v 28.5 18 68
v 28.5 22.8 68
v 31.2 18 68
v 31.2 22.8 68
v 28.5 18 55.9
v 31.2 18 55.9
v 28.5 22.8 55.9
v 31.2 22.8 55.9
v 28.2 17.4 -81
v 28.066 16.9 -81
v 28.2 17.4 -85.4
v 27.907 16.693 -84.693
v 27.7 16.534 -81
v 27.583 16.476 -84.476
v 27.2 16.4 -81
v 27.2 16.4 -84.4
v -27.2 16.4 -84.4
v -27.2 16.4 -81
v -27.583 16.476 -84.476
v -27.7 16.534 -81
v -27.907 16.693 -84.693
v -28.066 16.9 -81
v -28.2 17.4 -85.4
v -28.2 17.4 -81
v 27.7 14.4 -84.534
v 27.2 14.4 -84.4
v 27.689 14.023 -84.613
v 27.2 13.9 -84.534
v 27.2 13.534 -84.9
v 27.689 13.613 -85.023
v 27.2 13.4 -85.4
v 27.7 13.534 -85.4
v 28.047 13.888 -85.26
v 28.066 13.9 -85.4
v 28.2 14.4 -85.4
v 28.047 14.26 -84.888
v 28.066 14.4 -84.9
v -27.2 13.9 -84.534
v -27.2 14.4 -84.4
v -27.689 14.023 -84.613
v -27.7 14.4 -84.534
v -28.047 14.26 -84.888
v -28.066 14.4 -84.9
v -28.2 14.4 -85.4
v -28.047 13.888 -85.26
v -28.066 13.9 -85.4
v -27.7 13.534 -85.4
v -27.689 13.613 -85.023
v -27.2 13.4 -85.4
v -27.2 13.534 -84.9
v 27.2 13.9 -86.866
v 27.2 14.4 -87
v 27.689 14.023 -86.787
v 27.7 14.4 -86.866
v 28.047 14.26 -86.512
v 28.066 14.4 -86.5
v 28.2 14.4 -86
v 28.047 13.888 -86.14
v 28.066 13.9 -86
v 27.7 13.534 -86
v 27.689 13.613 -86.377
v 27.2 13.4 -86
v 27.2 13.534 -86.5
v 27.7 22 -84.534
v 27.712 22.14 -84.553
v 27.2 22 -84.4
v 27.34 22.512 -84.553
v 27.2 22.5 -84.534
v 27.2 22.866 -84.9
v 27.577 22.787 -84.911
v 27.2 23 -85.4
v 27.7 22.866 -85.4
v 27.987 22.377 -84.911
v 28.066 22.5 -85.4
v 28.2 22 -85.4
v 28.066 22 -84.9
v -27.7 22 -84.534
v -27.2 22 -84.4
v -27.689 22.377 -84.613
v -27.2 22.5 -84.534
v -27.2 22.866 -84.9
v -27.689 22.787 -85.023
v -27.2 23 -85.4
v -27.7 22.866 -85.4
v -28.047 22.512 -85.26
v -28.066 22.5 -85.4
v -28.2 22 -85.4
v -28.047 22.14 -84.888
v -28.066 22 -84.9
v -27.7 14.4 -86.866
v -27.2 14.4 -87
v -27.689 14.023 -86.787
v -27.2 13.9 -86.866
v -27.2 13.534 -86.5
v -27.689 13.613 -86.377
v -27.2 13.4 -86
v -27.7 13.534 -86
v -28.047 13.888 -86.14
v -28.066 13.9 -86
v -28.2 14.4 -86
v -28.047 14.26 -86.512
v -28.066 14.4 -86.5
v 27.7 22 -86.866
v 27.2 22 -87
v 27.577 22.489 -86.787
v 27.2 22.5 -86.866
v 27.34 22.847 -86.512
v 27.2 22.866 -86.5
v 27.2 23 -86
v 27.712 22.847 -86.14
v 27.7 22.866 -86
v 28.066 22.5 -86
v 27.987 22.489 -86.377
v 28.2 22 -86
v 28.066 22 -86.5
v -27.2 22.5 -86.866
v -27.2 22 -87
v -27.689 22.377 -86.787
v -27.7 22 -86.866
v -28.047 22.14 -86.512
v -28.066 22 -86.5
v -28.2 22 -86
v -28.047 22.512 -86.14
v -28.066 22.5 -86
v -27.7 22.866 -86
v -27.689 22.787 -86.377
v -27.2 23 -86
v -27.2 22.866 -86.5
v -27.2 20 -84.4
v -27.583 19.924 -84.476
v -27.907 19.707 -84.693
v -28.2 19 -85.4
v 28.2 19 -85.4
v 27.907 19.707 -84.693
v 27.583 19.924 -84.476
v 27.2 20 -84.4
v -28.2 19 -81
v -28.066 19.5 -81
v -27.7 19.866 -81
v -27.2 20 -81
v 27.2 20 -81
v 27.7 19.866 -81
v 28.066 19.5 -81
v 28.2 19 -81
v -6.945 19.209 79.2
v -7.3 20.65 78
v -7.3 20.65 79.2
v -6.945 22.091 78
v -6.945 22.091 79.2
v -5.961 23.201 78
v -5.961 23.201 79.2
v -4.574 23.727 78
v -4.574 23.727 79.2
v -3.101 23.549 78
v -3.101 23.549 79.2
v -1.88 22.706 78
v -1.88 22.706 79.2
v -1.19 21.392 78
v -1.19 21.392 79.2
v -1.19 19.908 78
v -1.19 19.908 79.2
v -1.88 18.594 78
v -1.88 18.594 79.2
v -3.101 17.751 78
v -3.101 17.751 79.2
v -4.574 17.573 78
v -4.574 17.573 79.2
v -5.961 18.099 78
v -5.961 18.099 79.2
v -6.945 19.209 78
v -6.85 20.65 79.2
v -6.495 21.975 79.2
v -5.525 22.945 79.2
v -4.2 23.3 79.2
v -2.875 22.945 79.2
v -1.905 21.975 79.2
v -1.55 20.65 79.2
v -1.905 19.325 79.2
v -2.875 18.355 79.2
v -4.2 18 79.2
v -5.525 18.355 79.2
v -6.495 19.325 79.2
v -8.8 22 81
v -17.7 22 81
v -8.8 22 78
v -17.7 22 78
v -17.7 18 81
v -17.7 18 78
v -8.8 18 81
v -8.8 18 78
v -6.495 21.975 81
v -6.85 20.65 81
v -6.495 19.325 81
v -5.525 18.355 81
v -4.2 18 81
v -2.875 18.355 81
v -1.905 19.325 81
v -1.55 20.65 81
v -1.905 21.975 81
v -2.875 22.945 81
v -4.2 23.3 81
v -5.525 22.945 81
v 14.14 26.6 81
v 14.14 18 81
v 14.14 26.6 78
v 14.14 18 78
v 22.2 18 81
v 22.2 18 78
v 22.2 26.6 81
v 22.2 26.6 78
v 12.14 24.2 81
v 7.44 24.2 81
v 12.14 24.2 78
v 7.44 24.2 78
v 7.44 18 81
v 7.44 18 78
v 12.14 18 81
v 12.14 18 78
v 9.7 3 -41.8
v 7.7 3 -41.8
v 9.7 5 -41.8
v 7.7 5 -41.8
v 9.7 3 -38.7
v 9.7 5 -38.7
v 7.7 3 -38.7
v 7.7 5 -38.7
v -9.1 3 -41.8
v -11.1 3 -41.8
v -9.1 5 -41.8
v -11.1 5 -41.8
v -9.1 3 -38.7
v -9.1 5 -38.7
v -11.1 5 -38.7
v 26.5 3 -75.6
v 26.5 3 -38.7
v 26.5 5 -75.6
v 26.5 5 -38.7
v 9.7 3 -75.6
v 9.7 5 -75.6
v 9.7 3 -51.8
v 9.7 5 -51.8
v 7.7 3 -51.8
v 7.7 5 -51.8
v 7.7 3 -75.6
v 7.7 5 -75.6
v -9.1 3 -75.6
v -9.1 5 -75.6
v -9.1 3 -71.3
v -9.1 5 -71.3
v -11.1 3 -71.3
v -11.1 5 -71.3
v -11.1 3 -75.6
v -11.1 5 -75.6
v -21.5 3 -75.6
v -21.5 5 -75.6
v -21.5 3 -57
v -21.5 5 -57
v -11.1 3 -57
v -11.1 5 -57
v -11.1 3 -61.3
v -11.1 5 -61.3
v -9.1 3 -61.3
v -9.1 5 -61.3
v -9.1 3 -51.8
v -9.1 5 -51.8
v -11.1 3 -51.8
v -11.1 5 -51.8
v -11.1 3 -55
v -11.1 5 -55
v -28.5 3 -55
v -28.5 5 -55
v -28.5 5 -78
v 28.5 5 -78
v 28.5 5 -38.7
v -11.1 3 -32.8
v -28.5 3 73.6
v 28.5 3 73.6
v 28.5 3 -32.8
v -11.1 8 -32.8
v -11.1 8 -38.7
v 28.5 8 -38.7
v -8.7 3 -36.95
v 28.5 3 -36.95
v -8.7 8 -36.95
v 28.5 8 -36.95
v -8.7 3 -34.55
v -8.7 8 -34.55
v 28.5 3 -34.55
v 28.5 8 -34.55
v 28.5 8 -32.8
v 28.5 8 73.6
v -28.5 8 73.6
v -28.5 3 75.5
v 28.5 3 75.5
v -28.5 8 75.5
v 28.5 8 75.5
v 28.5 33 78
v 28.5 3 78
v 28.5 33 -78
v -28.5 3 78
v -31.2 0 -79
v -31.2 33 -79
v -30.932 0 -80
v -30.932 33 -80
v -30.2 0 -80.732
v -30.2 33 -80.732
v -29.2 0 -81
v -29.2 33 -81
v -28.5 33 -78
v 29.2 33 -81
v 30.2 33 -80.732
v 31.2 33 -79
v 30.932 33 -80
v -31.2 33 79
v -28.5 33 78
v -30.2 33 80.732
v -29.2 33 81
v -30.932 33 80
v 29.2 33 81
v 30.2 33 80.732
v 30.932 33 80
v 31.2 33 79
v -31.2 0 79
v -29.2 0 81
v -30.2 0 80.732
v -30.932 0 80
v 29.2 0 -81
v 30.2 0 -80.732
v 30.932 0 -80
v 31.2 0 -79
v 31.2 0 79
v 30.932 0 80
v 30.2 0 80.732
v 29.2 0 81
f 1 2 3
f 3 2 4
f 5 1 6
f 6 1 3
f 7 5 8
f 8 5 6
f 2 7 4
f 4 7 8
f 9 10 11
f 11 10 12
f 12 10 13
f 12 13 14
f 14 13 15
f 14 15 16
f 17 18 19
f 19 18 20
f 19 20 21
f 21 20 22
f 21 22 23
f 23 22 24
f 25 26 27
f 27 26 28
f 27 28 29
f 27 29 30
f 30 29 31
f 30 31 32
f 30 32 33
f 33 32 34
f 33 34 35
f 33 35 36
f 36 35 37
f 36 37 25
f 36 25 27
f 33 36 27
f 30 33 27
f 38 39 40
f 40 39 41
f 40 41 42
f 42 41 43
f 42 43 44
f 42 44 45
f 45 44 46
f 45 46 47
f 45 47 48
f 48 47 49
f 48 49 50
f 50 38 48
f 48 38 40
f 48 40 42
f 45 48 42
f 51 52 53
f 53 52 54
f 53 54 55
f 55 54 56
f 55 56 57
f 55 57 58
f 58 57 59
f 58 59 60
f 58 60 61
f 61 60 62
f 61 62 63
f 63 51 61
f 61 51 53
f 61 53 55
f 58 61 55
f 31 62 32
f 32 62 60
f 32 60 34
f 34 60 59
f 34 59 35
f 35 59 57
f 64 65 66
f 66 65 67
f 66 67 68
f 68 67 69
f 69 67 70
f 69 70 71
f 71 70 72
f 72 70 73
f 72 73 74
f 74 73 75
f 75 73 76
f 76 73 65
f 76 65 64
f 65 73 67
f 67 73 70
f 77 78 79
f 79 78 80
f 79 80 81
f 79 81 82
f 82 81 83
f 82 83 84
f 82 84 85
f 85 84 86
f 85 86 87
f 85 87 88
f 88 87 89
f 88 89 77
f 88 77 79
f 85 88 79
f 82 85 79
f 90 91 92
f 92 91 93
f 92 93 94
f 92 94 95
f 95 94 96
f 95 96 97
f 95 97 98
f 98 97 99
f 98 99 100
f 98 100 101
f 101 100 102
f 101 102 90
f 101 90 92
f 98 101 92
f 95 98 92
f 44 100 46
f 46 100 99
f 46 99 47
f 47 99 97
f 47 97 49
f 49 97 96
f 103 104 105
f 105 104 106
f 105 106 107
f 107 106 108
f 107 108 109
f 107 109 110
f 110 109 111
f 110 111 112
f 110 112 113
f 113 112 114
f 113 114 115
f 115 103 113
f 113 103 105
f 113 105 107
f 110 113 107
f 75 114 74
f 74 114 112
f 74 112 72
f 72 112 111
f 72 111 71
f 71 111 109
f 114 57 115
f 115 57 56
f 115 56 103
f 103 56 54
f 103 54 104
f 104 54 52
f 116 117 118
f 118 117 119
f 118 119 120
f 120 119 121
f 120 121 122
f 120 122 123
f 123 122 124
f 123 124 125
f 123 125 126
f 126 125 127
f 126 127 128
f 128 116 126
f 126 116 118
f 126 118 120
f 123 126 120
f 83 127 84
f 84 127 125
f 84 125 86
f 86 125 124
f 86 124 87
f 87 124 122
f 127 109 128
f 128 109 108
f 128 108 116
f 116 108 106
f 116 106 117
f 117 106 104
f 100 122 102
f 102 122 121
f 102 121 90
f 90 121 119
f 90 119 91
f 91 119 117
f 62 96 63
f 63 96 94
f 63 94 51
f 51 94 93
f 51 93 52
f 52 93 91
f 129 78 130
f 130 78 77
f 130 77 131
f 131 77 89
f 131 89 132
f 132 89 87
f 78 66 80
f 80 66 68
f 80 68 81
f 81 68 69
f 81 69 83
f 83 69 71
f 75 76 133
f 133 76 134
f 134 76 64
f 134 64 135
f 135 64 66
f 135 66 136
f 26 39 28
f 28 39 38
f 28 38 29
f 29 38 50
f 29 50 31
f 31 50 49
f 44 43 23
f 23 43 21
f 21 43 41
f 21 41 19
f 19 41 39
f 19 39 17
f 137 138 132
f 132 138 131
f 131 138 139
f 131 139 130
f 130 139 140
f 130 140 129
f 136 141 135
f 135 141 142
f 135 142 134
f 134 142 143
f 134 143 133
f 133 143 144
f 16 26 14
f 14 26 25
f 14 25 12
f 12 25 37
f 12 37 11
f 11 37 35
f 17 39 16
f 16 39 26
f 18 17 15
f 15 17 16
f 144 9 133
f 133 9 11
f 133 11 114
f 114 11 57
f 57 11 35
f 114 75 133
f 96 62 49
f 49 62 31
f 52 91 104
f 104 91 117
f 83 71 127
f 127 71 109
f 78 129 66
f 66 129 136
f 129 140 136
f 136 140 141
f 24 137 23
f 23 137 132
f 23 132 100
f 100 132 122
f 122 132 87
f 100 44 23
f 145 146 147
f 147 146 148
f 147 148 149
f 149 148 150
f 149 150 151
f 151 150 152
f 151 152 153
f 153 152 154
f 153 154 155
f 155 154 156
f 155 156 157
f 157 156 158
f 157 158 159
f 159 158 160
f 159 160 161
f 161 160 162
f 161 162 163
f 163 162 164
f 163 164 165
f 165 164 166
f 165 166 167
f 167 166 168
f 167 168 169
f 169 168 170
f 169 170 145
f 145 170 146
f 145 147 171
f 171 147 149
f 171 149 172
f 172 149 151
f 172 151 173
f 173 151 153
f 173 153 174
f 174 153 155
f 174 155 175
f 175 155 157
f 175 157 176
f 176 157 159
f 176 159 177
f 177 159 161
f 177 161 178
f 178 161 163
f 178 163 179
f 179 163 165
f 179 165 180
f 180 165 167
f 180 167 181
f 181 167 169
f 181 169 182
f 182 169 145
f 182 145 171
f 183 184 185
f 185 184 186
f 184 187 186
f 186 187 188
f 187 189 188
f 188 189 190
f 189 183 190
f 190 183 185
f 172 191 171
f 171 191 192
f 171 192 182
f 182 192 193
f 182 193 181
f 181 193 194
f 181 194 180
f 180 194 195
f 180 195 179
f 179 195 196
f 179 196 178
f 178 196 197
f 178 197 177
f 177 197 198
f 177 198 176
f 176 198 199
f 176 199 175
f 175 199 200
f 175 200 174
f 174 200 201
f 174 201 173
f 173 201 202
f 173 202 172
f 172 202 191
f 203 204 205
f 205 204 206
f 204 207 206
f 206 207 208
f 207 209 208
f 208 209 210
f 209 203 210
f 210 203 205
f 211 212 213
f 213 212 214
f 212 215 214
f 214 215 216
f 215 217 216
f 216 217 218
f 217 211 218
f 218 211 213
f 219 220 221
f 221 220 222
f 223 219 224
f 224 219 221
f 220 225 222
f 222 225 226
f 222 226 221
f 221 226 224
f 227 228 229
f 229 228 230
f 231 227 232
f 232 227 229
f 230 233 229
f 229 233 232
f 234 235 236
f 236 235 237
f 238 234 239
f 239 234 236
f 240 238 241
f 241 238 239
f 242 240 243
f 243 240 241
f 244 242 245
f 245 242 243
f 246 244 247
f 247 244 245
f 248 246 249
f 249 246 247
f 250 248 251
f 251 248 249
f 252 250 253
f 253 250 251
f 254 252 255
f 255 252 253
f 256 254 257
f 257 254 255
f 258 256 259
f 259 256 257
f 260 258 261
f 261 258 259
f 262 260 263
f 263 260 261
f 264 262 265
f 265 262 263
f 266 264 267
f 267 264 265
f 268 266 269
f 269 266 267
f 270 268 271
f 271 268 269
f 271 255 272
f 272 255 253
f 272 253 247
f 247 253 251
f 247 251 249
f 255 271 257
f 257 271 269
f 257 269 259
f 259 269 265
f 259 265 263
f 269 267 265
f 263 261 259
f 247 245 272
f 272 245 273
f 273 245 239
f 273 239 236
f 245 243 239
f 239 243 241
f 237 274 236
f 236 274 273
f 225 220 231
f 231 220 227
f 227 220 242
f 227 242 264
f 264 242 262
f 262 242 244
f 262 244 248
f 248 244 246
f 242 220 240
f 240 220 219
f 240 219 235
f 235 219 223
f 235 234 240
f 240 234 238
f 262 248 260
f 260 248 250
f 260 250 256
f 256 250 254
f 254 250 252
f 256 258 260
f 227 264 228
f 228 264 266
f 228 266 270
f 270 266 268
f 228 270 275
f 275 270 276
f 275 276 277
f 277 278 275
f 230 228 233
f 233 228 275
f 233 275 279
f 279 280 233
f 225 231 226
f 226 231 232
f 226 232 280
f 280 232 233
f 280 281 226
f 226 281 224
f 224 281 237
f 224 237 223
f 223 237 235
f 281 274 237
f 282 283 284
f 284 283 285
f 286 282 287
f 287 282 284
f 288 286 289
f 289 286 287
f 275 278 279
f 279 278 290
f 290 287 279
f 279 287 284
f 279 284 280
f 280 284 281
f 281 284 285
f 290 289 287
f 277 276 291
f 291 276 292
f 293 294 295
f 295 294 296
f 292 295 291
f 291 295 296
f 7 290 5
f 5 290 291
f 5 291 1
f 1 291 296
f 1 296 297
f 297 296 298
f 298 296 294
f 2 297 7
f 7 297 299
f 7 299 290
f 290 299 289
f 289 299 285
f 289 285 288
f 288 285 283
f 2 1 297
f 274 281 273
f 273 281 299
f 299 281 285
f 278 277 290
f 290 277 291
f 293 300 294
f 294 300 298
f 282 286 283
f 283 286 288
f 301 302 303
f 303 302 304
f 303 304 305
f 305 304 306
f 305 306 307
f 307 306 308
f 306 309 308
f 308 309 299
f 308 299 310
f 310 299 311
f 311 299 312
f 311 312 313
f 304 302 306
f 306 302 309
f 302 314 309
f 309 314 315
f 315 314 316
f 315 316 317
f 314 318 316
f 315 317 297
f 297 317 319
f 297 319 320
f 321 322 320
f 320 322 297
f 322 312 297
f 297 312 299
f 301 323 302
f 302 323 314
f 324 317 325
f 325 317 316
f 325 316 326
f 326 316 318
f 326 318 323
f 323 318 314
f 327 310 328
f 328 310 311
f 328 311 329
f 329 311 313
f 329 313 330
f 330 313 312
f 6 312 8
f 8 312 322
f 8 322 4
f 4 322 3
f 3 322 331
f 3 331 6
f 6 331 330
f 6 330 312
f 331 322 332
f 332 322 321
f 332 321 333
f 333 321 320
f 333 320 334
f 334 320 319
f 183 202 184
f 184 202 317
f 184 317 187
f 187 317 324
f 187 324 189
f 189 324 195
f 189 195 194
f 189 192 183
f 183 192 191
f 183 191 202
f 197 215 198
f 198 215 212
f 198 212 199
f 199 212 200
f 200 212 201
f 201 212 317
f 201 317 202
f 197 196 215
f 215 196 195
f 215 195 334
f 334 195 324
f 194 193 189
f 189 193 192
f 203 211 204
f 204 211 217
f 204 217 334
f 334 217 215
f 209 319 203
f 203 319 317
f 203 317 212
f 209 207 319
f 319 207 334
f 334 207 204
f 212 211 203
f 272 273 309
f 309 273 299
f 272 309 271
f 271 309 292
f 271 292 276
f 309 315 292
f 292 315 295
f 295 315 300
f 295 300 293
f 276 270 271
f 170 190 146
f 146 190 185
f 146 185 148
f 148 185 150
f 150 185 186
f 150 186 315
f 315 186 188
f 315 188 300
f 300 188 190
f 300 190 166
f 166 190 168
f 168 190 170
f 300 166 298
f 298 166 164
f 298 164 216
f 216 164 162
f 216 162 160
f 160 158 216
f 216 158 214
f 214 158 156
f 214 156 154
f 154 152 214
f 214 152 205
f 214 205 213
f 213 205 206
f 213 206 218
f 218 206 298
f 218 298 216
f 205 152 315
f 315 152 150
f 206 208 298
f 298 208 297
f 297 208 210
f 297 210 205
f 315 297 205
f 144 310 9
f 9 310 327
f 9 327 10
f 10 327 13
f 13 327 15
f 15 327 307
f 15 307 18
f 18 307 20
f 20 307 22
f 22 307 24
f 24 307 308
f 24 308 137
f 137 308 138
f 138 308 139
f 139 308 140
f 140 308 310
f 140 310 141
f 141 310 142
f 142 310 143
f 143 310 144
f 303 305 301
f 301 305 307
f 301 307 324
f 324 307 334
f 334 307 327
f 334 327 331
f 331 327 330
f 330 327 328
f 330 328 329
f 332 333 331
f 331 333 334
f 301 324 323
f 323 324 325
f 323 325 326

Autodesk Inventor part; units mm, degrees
ref_plane "YZ Plane" through (0, 0, 0) normal (1, 0, 0) x (0, 1, 0)
ref_plane "XZ Plane" through (0, 0, 0) normal (0, 1, 0) x (-1, 0, 0)
ref_plane "XY Plane" through (0, 0, 0) normal (0, 0, 1) x (1, 0, 0)
sketch "Sketch1" plane through (0, 0, 0) normal (0, 1, 0) x (-1, 0, 0)
  line L0 (-31.2, -81) -> (31.2, -81)
  line L1 (31.2, -81) -> (31.2, 81)
  line L2 (31.2, 81) -> (-31.2, 81)
  line L3 (-31.2, 81) -> (-31.2, -81)
  line L4 (-31.2, -81) -> (31.2, 81) construction
  line L5 (31.2, -81) -> (-31.2, 81) construction
  point P0 (0, 0)
  dimension "d0" = 62.4
  dimension "d1" = 162
extrude "Extrusion1" add sketch "Sketch1" along normal blind 3
sketch "Sketch2" plane through (0, 3, 0) normal (0, 1, 0) x (1, 0, 0)
  line L0 (-31.2, 81) -> (-31.2, -81) projected
  line L1 (-31.2, -81) -> (31.2, -81) projected
  line L2 (31.2, -81) -> (31.2, 81) projected
  line L3 (31.2, 81) -> (-31.2, 81) projected
  line L4 (31.2, 81) -> (-31.2, 81)
  line L5 (-31.2, 81) -> (-31.2, -81)
  line L6 (-31.2, -81) -> (31.2, -81)
  line L7 (31.2, -81) -> (31.2, 81)
  line L8 (28.5, 78) -> (-28.5, 78)
  line L9 (-28.5, 78) -> (-28.5, -78)
  line L10 (-28.5, -78) -> (28.5, -78)
  line L11 (28.5, -78) -> (28.5, 78)
  point P0 (0, 0)
  dimension "d175" = 2.7
  dimension "d176" = 2.7
  dimension "d177" = 3
  dimension "d178" = 3
extrude "Extrusion2" add sketch "Sketch2" along normal blind 30
fillet "Fillet1" radius 2 4 edges at (31.2, 16.5, 81) (31.2, 16.5, -81) (-31.2, 16.5, 81) (-31.2, 16.5, -81)
sketch "Sketch9" plane through (0, 3, 0) normal (0, 1, 0) x (1, 0, 0)
  line L0 (28.5, 78) -> (-28.5, 78) projected
  line L1 (-28.5, 78) -> (-28.5, -78) projected
  line L2 (-28.5, -78) -> (28.5, -78) projected
  line L3 (28.5, -78) -> (28.5, 78) projected
  line L4 (-28.5, -75.5) -> (28.5, -75.5)
  line L5 (28.5, -75.5) -> (28.5, -73.6)
  line L6 (28.5, -73.6) -> (-28.5, -73.6)
  line L7 (-28.5, -73.6) -> (-28.5, -75.5)
  line L8 (-28.5, 78) -> (-28.5, -78) projected
  line L9 (-28.5, 32.8) -> (28.5, 32.8)
  line L10 (28.5, 32.8) -> (28.5, 34.55)
  line L11 (28.5, 34.55) -> (-28.5, 34.55)
  line L12 (-28.5, 34.55) -> (-28.5, 32.8)
  line L13 (-28.5, 34.55) -> (-11.1, 34.55)
  line L14 (-11.1, 34.55) -> (-11.1, 32.8)
  line L15 (-11.1, 32.8) -> (-28.5, 32.8)
  line L16 (-28.5, 32.8) -> (-28.5, 34.55)
  line L17 (28.5, 38.7) -> (-11.1, 38.7)
  line L18 (-11.1, 38.7) -> (-11.1, 36.95)
  line L19 (-11.1, 36.95) -> (28.5, 36.95)
  line L20 (28.5, 36.95) -> (28.5, 38.7)
  line L21 (-11.1, 36.95) -> (-8.7, 36.95)
  line L22 (-8.7, 36.95) -> (-8.7, 34.55)
  line L23 (-8.7, 34.55) -> (-11.1, 34.55)
  line L24 (-11.1, 34.55) -> (-11.1, 36.95)
  point P0 (0, 0)
  point P1 (28.5, 14.2)
  point P2 (-28.5, 34.55)
  point P3 (-28.5, 32.8)
  point P4 (28.5, 32.8)
  point P5 (-28.5, -73.6)
  point P6 (28.5, -75.5)
  point P7 (-11.1, 34.55)
  point P8 (28.5, 36.95)
  dimension "d79" = 1.9
  dimension "d80" = 2.5
  dimension "d81" = 1.75
  dimension "d82" = 106.4
  dimension "d87" = 17.4
  dimension "d163" = 1.75
  dimension "d164" = 2.4
  dimension "d165" = 17.4
  dimension "d166" = 2.4
extrude "Extrusion9" add sketch "Sketch9" along normal blind 5 contours L3 L19 L18 L17 | L24 L19 L22 L11 | L11 L3 L9 L14 | L6 L3 L4 L1
sketch "Sketch10" plane through (0, 3, 0) normal (0, 1, 0) x (1, 0, 0)
  line L0 (-28.5, -73.6) -> (28.5, -73.6) projected
  line L1 (28.5, -73.6) -> (28.5, 32.8) projected
  line L2 (28.5, 32.8) -> (-11.1, 32.8) projected
  line L3 (-8.7, 34.55) -> (28.5, 34.55) projected
  line L4 (28.5, 34.55) -> (28.5, 36.95) projected
  line L5 (28.5, 78) -> (-28.5, 78) projected
  line L6 (-28.5, 78) -> (-28.5, -73.6) projected
  line L7 (-28.5, 36.7) -> (28.5, 36.7)
  line L8 (-28.5, 69.9) -> (-28.5, 36.7)
  line L9 (-28.5, 36.7) -> (28.5, 36.7)
  line L10 (28.5, 36.7) -> (28.5, 38.7)
  line L11 (28.5, 38.7) -> (-28.5, 38.7)
  line L12 (-28.5, 38.7) -> (-28.5, 36.7)
  line L13 (28.5, 34.55) -> (28.5, 78) projected
  line L14 (-28.5, 38.7) -> (28.5, 38.7)
  line L15 (28.5, 38.7) -> (28.5, 75.6)
  line L16 (28.5, 75.6) -> (-23, 75.6)
  line L17 (-23, 75.6) -> (28.5, 75.6)
  line L18 (28.5, 75.6) -> (28.5, 68)
  line L19 (-23, 73.1) -> (-23, 75.6)
  line L20 (28.5, 38.7) -> (26.5, 38.7)
  line L21 (26.5, 38.7) -> (26.5, 75.6)
  line L22 (26.5, 75.6) -> (28.5, 75.6)
  line L23 (28.5, 75.6) -> (28.5, 38.7)
  line L24 (26.5, 38.7) -> (9.7, 38.7)
  line L25 (9.7, 38.7) -> (9.7, 75.6)
  line L26 (9.7, 75.6) -> (26.5, 75.6)
  line L27 (26.5, 75.6) -> (26.5, 38.7)
  line L28 (9.7, 38.7) -> (7.7, 38.7)
  line L29 (7.7, 38.7) -> (7.7, 75.6)
  line L30 (7.7, 75.6) -> (9.7, 75.6)
  line L31 (9.7, 75.6) -> (9.7, 38.7)
  line L32 (7.7, 38.7) -> (-9.1, 38.7)
  line L33 (-9.1, 38.7) -> (-9.1, 75.6)
  line L34 (-9.1, 75.6) -> (7.7, 75.6)
  line L35 (7.7, 75.6) -> (7.7, 38.7)
  line L36 (-9.1, 38.7) -> (-11.1, 38.7)
  line L37 (-11.1, 38.7) -> (-11.1, 75.6)
  line L38 (-11.1, 75.6) -> (-9.1, 75.6)
  line L39 (-9.1, 75.6) -> (-9.1, 38.7)
  line L40 (-23, 75.6) -> (-21.5, 75.6)
  line L41 (-21.5, 75.6) -> (-21.5, 38.7)
  line L42 (-21.5, 38.7) -> (-23, 38.7)
  line L43 (-23, 38.7) -> (-23, 75.6)
  line L44 (-11.1, 39.2) -> (-11.1, 57)
  line L45 (-11.1, 57) -> (-21.5, 57)
  line L46 (-21.5, 57) -> (-21.5, 38.7)
  line L47 (-11.1, 38.7) -> (28.5, 38.7) projected
  line L48 (28.5, 38.7) -> (28.5, 78) projected
  line L49 (-11.1, 32.8) -> (-11.1, 38.7) projected
  line L50 (28.5, 36.95) -> (-8.7, 36.95) projected
  line L51 (-8.7, 36.95) -> (-8.7, 34.55) projected
  line L52 (28.5, -75.5) -> (-28.5, -75.5) projected
  line L53 (-28.5, -75.5) -> (-28.5, -78) projected
  line L54 (-28.5, -78) -> (28.5, -78) projected
  line L55 (28.5, -78) -> (28.5, -75.5) projected
  line L56 (-11.1, 39.2) -> (-11.1, 36.7)
  line L57 (-11.1, 55) -> (-23, 55)
  line L58 (-11.1, 39.2) -> (-11.1, 32.8)
  line L59 (-11.1, 32.8) -> (-11.1, 32.8)
  line L60 (-11.1, 32.8) -> (-11.1, 39.2)
  line L61 (-23, 55) -> (-28.5, 55)
  line L62 (7.7, 51.8) -> (9.7, 51.8)
  line L63 (9.7, 51.8) -> (9.7, 41.8)
  line L64 (9.7, 41.8) -> (7.7, 41.8)
  line L65 (7.7, 41.8) -> (7.7, 51.8)
  line L66 (-11.1, 41.8) -> (-9.1, 41.8)
  line L67 (-9.1, 41.8) -> (-9.1, 51.8)
  line L68 (-9.1, 51.8) -> (-11.1, 51.8)
  line L69 (-11.1, 51.8) -> (-11.1, 41.8)
  line L70 (-11.1, 71.3) -> (-9.1, 71.3)
  line L71 (-9.1, 71.3) -> (-9.1, 61.3)
  line L72 (-9.1, 61.3) -> (-11.1, 61.3)
  line L73 (-11.1, 61.3) -> (-11.1, 71.3)
  point P0 (0, 0)
  point P1 (28.5, 36.7)
  point P2 (7.7, 38.7)
  point P3 (-9.1, 38.7)
  point P4 (-11.1, 38.7)
  point P5 (-21.5, 38.7)
  point P6 (-21.5, 57)
  point P7 (26.5, 38.7)
  point P8 (9.7, 38.7)
  point P9 (28.2, 37.2)
  point P10 (-11.1, 36.7)
  point P11 (-25.2, 72.6)
  point P12 (-11.1, 75.6)
  point P13 (-11.1, 36.7)
  point P14 (-11.1, 38.7)
  point P15 (-21.5, 75.6)
  point P16 (-25.2, 52)
  point P17 (-11.1, 36.7)
  point P18 (-28.5, 38.7)
  point P19 (28.5, 75.6)
  point P20 (28.5, 38.7)
  point P21 (-11.1, 36.7)
  point P22 (-11.1, 38.7)
  point P23 (-21.5, 55)
  point P24 (-11.1, 38.7)
  point P25 (-10.7, 32.8)
  point P26 (28.5, 38.7)
  point P27 (-11.1, 38.7)
  point P28 (-9.1, 38.7)
  point P29 (-28.5, 55)
  point P30 (7.7, 41.8)
  point P31 (-9.1, 41.8)
  point P32 (-9.1, 51.8)
  point P33 (-11.1, 61.3)
  point P34 (7.7, 51.8)
  point P35 (9.7, 51.8)
  dimension "d90" = 2
  dimension "d91" = 36.9
  dimension "d93" = 2
  dimension "d94" = 16.8
  dimension "d95" = 2
  dimension "d96" = 16.8
  dimension "d97" = 2
  dimension "d98" = 1.5
  dimension "d167" = 2.4
  dimension "d172" = 18.6
  dimension "d173" = 2
  dimension "d174" = 10.4
  dimension "d179" = 10
  dimension "d180" = 10
  dimension "d181" = 3.1
  dimension "d182" = 3.1
  dimension "d183" = 10
  dimension "d184" = 4.3
extrude "Extrusion10" add sketch "Sketch10" along normal blind 2 contours L6 L5 L13 L16 L19 L43 L61 | L37 L66 L33 L11 | L43 L19 L16 L41 L57 | L41 L45 L37 L57 | L29 L64 L25 L11 | L37 L72 L33 L68 | L11 L21 L16 L13 | L29 L16 L25 L62 | L16 L33 L70 L37
sketch "Sketch11" plane through (-23.2, 5, 81) normal (0, 0, 1) x (1, 0, 0)
  line L0 (-6, 28) -> (52.4, 28) projected
  line L1 (5.5, 13) -> (14.4, 13)
  line L2 (14.4, 13) -> (14.4, 17)
  line L3 (14.4, 17) -> (5.5, 17)
  line L4 (5.5, 17) -> (5.5, 13)
  line L5 (45.4, 13) -> (37.34, 13)
  line L6 (37.34, 13) -> (37.34, 21.6)
  line L7 (37.34, 21.6) -> (45.4, 21.6)
  line L8 (45.4, 21.6) -> (45.4, 13)
  circle A0 centre (19, 15.65) radius 2.65
  line L9 (48.4, 0) -> (48.4, 30) projected
  line L10 (52.4, 28) -> (52.4, -5) projected
  line L11 (-6, -5) -> (-6, 28) projected
  line L12 (-6, -5) -> (52.4, -5) projected
  line L13 (54.4, -5) -> (54.4, 28) projected
  line L14 (-8, 28) -> (-8, -5) projected
  line L15 (30.64, 13) -> (35.34, 13)
  line L16 (35.34, 13) -> (35.34, 19.2)
  line L17 (35.34, 19.2) -> (30.64, 19.2)
  line L18 (30.64, 19.2) -> (30.64, 13)
  point P0 (23.2, -5)
  point P1 (46.4, 0)
  point P2 (0, 0)
  dimension "d110" = 8.9
  dimension "d111" = 4
  dimension "d112" = 8.06
  dimension "d113" = 8.6
  dimension "d114" = 5.3
  dimension "d149" = 9
  dimension "d150" = 13.5
  dimension "d151" = 27
  dimension "d152" = 18
  dimension "d153" = 18
  dimension "d154" = 18
  dimension "d168" = 4.7
  dimension "d169" = 6.2
  dimension "d170" = 2
  dimension "d171" = 18
extrude "Extrusion11" cut sketch "Sketch11" against normal blind 3 contours L4 L3 L2 L1 | L5 L6 L7 L8 | A0 | L18 L17 L16 L15
sketch "Sketch12" plane through (28.5, 3, 78) normal (0, 0, -1) x (-1, 0, 0)
  line L0 (14.36, 23.6) -> (14.36, 15) projected
  line L1 (14.36, 15) -> (6.3, 15) projected
  line L2 (6.3, 15) -> (6.3, 23.6) projected
  line L3 (6.3, 23.6) -> (14.36, 23.6) projected
  line L4 (37.3, 19) -> (46.2, 19) projected
  line L5 (46.2, 19) -> (46.2, 15) projected
  line L6 (46.2, 15) -> (37.3, 15) projected
  line L7 (37.3, 15) -> (37.3, 19) projected
  circle A0 centre (32.7, 17.65) radius 2.65 projected
  line L8 (57, 0) -> (0, 0) projected
  line L9 (57, 0) -> (57, 30) projected
  line L10 (0, 30) -> (57, 30) projected
  line L11 (0, 0) -> (0, 30) projected
  circle A1 centre (32.7, 17.65) radius 3.1
  point P0 (28.5, -3)
  dimension "d128" = 6.2
extrude "Extrusion12" cut sketch "Sketch12" against normal blind 1.2 contours A1
sketch "Sketch13" plane through (23.2, 5, -81) normal (0, 0, -1) x (-1, 0, 0)
  line L0 (-5, 18) -> (51.4, 18)
  line L1 (51.4, 18) -> (51.4, 8.4)
  line L2 (51.4, 8.4) -> (-5, 8.4)
  line L3 (-5, 8.4) -> (-5, 18)
  line L4 (54.4, -5) -> (54.4, 28) projected
  line L5 (-8, 28) -> (-8, -5) projected
  line L6 (-6, -5) -> (52.4, -5) projected
  point P0 (23.2, -5)
  point P1 (51.4, 0)
  point P2 (-5, 0)
  point P3 (54.4, 11.5)
  point P4 (51.4, 13.2)
  dimension "d131" = 9.6
  dimension "d146" = 3
  dimension "d147" = 3
  dimension "d156" = 23
extrude "Extrusion13" add sketch "Sketch13" along normal blind 6
sketch "Sketch14" plane through (-28.2, 13.4, -81) normal (-1, 0, 0) x (0, 0, 1)
  line L0 (0, 9.6) -> (0, 0) projected
  line L1 (0, 9.6) -> (-6, 9.6) projected
  line L2 (-6, 0) -> (-6, 9.6) projected
  line L3 (0, 0) -> (-6, 0) projected
  line L4 (0, 9.6) -> (-3.4, 9.6)
  line L5 (-3.4, 9.6) -> (-3.4, 6.6)
  line L6 (-3.4, 6.6) -> (0, 6.6)
  line L7 (0, 6.6) -> (0, 9.6)
  line L8 (0, 0) -> (-3.4, 0)
  line L9 (-3.4, 0) -> (-3.4, 3)
  line L10 (-3.4, 3) -> (0, 3)
  line L11 (0, 3) -> (0, 0)
  point P0 (81, -13.4)
  point P1 (0, 6.6)
  dimension "d137" = 3.4
  dimension "d138" = 3
  dimension "d139" = 3.4
  dimension "d140" = 3
extrude "Extrusion14" cut sketch "Sketch14" against normal up to surface (56.4 mm away) contours L0 L6 L5 L1 | L0 L3 L9 L10
fillet "Fillet5" radius 1 18 edges at (0, 23, -87) (0, 23, -84.4) (0, 13.4, -87) (0, 13.4, -84.4) (-28.2, 16.4, -82.7) (-28.2, 20, -82.7) (28.2, 16.4, -82.7) (28.2, 20, -82.7) (-28.2, 18.2, -87) (-28.2, 21.5, -84.4) (-28.2, 14.9, -84.4) (-28.2, 23, -85.7) (-28.2, 13.4, -85.7) (28.2, 23, -85.7) (28.2, 13.4, -85.7) (28.2, 14.9, -84.4) (28.2, 18.2, -87) (28.2, 21.5, -84.4)
sketch "Sketch15" plane through (31.2, 0, 79) normal (1, 0, 0) x (0, 0, -1)
  line L0 (11, 22.8) -> (23.1, 22.8)
  line L1 (23.1, 22.8) -> (23.1, 18)
  line L2 (23.1, 18) -> (11, 18)
  line L3 (11, 18) -> (11, 22.8)
  line L4 (-2, 33) -> (-2, 0) projected
  line L5 (0, 0) -> (158, 0) projected
  point P0 (79, 0)
  dimension "d157" = 12.1
  dimension "d158" = 4.8
  dimension "d159" = 13
  dimension "d160" = 18
extrude "Extrusion15" cut sketch "Sketch15" against normal blind 3
properties part number "module_command" material "PC/ABS Plastic"
